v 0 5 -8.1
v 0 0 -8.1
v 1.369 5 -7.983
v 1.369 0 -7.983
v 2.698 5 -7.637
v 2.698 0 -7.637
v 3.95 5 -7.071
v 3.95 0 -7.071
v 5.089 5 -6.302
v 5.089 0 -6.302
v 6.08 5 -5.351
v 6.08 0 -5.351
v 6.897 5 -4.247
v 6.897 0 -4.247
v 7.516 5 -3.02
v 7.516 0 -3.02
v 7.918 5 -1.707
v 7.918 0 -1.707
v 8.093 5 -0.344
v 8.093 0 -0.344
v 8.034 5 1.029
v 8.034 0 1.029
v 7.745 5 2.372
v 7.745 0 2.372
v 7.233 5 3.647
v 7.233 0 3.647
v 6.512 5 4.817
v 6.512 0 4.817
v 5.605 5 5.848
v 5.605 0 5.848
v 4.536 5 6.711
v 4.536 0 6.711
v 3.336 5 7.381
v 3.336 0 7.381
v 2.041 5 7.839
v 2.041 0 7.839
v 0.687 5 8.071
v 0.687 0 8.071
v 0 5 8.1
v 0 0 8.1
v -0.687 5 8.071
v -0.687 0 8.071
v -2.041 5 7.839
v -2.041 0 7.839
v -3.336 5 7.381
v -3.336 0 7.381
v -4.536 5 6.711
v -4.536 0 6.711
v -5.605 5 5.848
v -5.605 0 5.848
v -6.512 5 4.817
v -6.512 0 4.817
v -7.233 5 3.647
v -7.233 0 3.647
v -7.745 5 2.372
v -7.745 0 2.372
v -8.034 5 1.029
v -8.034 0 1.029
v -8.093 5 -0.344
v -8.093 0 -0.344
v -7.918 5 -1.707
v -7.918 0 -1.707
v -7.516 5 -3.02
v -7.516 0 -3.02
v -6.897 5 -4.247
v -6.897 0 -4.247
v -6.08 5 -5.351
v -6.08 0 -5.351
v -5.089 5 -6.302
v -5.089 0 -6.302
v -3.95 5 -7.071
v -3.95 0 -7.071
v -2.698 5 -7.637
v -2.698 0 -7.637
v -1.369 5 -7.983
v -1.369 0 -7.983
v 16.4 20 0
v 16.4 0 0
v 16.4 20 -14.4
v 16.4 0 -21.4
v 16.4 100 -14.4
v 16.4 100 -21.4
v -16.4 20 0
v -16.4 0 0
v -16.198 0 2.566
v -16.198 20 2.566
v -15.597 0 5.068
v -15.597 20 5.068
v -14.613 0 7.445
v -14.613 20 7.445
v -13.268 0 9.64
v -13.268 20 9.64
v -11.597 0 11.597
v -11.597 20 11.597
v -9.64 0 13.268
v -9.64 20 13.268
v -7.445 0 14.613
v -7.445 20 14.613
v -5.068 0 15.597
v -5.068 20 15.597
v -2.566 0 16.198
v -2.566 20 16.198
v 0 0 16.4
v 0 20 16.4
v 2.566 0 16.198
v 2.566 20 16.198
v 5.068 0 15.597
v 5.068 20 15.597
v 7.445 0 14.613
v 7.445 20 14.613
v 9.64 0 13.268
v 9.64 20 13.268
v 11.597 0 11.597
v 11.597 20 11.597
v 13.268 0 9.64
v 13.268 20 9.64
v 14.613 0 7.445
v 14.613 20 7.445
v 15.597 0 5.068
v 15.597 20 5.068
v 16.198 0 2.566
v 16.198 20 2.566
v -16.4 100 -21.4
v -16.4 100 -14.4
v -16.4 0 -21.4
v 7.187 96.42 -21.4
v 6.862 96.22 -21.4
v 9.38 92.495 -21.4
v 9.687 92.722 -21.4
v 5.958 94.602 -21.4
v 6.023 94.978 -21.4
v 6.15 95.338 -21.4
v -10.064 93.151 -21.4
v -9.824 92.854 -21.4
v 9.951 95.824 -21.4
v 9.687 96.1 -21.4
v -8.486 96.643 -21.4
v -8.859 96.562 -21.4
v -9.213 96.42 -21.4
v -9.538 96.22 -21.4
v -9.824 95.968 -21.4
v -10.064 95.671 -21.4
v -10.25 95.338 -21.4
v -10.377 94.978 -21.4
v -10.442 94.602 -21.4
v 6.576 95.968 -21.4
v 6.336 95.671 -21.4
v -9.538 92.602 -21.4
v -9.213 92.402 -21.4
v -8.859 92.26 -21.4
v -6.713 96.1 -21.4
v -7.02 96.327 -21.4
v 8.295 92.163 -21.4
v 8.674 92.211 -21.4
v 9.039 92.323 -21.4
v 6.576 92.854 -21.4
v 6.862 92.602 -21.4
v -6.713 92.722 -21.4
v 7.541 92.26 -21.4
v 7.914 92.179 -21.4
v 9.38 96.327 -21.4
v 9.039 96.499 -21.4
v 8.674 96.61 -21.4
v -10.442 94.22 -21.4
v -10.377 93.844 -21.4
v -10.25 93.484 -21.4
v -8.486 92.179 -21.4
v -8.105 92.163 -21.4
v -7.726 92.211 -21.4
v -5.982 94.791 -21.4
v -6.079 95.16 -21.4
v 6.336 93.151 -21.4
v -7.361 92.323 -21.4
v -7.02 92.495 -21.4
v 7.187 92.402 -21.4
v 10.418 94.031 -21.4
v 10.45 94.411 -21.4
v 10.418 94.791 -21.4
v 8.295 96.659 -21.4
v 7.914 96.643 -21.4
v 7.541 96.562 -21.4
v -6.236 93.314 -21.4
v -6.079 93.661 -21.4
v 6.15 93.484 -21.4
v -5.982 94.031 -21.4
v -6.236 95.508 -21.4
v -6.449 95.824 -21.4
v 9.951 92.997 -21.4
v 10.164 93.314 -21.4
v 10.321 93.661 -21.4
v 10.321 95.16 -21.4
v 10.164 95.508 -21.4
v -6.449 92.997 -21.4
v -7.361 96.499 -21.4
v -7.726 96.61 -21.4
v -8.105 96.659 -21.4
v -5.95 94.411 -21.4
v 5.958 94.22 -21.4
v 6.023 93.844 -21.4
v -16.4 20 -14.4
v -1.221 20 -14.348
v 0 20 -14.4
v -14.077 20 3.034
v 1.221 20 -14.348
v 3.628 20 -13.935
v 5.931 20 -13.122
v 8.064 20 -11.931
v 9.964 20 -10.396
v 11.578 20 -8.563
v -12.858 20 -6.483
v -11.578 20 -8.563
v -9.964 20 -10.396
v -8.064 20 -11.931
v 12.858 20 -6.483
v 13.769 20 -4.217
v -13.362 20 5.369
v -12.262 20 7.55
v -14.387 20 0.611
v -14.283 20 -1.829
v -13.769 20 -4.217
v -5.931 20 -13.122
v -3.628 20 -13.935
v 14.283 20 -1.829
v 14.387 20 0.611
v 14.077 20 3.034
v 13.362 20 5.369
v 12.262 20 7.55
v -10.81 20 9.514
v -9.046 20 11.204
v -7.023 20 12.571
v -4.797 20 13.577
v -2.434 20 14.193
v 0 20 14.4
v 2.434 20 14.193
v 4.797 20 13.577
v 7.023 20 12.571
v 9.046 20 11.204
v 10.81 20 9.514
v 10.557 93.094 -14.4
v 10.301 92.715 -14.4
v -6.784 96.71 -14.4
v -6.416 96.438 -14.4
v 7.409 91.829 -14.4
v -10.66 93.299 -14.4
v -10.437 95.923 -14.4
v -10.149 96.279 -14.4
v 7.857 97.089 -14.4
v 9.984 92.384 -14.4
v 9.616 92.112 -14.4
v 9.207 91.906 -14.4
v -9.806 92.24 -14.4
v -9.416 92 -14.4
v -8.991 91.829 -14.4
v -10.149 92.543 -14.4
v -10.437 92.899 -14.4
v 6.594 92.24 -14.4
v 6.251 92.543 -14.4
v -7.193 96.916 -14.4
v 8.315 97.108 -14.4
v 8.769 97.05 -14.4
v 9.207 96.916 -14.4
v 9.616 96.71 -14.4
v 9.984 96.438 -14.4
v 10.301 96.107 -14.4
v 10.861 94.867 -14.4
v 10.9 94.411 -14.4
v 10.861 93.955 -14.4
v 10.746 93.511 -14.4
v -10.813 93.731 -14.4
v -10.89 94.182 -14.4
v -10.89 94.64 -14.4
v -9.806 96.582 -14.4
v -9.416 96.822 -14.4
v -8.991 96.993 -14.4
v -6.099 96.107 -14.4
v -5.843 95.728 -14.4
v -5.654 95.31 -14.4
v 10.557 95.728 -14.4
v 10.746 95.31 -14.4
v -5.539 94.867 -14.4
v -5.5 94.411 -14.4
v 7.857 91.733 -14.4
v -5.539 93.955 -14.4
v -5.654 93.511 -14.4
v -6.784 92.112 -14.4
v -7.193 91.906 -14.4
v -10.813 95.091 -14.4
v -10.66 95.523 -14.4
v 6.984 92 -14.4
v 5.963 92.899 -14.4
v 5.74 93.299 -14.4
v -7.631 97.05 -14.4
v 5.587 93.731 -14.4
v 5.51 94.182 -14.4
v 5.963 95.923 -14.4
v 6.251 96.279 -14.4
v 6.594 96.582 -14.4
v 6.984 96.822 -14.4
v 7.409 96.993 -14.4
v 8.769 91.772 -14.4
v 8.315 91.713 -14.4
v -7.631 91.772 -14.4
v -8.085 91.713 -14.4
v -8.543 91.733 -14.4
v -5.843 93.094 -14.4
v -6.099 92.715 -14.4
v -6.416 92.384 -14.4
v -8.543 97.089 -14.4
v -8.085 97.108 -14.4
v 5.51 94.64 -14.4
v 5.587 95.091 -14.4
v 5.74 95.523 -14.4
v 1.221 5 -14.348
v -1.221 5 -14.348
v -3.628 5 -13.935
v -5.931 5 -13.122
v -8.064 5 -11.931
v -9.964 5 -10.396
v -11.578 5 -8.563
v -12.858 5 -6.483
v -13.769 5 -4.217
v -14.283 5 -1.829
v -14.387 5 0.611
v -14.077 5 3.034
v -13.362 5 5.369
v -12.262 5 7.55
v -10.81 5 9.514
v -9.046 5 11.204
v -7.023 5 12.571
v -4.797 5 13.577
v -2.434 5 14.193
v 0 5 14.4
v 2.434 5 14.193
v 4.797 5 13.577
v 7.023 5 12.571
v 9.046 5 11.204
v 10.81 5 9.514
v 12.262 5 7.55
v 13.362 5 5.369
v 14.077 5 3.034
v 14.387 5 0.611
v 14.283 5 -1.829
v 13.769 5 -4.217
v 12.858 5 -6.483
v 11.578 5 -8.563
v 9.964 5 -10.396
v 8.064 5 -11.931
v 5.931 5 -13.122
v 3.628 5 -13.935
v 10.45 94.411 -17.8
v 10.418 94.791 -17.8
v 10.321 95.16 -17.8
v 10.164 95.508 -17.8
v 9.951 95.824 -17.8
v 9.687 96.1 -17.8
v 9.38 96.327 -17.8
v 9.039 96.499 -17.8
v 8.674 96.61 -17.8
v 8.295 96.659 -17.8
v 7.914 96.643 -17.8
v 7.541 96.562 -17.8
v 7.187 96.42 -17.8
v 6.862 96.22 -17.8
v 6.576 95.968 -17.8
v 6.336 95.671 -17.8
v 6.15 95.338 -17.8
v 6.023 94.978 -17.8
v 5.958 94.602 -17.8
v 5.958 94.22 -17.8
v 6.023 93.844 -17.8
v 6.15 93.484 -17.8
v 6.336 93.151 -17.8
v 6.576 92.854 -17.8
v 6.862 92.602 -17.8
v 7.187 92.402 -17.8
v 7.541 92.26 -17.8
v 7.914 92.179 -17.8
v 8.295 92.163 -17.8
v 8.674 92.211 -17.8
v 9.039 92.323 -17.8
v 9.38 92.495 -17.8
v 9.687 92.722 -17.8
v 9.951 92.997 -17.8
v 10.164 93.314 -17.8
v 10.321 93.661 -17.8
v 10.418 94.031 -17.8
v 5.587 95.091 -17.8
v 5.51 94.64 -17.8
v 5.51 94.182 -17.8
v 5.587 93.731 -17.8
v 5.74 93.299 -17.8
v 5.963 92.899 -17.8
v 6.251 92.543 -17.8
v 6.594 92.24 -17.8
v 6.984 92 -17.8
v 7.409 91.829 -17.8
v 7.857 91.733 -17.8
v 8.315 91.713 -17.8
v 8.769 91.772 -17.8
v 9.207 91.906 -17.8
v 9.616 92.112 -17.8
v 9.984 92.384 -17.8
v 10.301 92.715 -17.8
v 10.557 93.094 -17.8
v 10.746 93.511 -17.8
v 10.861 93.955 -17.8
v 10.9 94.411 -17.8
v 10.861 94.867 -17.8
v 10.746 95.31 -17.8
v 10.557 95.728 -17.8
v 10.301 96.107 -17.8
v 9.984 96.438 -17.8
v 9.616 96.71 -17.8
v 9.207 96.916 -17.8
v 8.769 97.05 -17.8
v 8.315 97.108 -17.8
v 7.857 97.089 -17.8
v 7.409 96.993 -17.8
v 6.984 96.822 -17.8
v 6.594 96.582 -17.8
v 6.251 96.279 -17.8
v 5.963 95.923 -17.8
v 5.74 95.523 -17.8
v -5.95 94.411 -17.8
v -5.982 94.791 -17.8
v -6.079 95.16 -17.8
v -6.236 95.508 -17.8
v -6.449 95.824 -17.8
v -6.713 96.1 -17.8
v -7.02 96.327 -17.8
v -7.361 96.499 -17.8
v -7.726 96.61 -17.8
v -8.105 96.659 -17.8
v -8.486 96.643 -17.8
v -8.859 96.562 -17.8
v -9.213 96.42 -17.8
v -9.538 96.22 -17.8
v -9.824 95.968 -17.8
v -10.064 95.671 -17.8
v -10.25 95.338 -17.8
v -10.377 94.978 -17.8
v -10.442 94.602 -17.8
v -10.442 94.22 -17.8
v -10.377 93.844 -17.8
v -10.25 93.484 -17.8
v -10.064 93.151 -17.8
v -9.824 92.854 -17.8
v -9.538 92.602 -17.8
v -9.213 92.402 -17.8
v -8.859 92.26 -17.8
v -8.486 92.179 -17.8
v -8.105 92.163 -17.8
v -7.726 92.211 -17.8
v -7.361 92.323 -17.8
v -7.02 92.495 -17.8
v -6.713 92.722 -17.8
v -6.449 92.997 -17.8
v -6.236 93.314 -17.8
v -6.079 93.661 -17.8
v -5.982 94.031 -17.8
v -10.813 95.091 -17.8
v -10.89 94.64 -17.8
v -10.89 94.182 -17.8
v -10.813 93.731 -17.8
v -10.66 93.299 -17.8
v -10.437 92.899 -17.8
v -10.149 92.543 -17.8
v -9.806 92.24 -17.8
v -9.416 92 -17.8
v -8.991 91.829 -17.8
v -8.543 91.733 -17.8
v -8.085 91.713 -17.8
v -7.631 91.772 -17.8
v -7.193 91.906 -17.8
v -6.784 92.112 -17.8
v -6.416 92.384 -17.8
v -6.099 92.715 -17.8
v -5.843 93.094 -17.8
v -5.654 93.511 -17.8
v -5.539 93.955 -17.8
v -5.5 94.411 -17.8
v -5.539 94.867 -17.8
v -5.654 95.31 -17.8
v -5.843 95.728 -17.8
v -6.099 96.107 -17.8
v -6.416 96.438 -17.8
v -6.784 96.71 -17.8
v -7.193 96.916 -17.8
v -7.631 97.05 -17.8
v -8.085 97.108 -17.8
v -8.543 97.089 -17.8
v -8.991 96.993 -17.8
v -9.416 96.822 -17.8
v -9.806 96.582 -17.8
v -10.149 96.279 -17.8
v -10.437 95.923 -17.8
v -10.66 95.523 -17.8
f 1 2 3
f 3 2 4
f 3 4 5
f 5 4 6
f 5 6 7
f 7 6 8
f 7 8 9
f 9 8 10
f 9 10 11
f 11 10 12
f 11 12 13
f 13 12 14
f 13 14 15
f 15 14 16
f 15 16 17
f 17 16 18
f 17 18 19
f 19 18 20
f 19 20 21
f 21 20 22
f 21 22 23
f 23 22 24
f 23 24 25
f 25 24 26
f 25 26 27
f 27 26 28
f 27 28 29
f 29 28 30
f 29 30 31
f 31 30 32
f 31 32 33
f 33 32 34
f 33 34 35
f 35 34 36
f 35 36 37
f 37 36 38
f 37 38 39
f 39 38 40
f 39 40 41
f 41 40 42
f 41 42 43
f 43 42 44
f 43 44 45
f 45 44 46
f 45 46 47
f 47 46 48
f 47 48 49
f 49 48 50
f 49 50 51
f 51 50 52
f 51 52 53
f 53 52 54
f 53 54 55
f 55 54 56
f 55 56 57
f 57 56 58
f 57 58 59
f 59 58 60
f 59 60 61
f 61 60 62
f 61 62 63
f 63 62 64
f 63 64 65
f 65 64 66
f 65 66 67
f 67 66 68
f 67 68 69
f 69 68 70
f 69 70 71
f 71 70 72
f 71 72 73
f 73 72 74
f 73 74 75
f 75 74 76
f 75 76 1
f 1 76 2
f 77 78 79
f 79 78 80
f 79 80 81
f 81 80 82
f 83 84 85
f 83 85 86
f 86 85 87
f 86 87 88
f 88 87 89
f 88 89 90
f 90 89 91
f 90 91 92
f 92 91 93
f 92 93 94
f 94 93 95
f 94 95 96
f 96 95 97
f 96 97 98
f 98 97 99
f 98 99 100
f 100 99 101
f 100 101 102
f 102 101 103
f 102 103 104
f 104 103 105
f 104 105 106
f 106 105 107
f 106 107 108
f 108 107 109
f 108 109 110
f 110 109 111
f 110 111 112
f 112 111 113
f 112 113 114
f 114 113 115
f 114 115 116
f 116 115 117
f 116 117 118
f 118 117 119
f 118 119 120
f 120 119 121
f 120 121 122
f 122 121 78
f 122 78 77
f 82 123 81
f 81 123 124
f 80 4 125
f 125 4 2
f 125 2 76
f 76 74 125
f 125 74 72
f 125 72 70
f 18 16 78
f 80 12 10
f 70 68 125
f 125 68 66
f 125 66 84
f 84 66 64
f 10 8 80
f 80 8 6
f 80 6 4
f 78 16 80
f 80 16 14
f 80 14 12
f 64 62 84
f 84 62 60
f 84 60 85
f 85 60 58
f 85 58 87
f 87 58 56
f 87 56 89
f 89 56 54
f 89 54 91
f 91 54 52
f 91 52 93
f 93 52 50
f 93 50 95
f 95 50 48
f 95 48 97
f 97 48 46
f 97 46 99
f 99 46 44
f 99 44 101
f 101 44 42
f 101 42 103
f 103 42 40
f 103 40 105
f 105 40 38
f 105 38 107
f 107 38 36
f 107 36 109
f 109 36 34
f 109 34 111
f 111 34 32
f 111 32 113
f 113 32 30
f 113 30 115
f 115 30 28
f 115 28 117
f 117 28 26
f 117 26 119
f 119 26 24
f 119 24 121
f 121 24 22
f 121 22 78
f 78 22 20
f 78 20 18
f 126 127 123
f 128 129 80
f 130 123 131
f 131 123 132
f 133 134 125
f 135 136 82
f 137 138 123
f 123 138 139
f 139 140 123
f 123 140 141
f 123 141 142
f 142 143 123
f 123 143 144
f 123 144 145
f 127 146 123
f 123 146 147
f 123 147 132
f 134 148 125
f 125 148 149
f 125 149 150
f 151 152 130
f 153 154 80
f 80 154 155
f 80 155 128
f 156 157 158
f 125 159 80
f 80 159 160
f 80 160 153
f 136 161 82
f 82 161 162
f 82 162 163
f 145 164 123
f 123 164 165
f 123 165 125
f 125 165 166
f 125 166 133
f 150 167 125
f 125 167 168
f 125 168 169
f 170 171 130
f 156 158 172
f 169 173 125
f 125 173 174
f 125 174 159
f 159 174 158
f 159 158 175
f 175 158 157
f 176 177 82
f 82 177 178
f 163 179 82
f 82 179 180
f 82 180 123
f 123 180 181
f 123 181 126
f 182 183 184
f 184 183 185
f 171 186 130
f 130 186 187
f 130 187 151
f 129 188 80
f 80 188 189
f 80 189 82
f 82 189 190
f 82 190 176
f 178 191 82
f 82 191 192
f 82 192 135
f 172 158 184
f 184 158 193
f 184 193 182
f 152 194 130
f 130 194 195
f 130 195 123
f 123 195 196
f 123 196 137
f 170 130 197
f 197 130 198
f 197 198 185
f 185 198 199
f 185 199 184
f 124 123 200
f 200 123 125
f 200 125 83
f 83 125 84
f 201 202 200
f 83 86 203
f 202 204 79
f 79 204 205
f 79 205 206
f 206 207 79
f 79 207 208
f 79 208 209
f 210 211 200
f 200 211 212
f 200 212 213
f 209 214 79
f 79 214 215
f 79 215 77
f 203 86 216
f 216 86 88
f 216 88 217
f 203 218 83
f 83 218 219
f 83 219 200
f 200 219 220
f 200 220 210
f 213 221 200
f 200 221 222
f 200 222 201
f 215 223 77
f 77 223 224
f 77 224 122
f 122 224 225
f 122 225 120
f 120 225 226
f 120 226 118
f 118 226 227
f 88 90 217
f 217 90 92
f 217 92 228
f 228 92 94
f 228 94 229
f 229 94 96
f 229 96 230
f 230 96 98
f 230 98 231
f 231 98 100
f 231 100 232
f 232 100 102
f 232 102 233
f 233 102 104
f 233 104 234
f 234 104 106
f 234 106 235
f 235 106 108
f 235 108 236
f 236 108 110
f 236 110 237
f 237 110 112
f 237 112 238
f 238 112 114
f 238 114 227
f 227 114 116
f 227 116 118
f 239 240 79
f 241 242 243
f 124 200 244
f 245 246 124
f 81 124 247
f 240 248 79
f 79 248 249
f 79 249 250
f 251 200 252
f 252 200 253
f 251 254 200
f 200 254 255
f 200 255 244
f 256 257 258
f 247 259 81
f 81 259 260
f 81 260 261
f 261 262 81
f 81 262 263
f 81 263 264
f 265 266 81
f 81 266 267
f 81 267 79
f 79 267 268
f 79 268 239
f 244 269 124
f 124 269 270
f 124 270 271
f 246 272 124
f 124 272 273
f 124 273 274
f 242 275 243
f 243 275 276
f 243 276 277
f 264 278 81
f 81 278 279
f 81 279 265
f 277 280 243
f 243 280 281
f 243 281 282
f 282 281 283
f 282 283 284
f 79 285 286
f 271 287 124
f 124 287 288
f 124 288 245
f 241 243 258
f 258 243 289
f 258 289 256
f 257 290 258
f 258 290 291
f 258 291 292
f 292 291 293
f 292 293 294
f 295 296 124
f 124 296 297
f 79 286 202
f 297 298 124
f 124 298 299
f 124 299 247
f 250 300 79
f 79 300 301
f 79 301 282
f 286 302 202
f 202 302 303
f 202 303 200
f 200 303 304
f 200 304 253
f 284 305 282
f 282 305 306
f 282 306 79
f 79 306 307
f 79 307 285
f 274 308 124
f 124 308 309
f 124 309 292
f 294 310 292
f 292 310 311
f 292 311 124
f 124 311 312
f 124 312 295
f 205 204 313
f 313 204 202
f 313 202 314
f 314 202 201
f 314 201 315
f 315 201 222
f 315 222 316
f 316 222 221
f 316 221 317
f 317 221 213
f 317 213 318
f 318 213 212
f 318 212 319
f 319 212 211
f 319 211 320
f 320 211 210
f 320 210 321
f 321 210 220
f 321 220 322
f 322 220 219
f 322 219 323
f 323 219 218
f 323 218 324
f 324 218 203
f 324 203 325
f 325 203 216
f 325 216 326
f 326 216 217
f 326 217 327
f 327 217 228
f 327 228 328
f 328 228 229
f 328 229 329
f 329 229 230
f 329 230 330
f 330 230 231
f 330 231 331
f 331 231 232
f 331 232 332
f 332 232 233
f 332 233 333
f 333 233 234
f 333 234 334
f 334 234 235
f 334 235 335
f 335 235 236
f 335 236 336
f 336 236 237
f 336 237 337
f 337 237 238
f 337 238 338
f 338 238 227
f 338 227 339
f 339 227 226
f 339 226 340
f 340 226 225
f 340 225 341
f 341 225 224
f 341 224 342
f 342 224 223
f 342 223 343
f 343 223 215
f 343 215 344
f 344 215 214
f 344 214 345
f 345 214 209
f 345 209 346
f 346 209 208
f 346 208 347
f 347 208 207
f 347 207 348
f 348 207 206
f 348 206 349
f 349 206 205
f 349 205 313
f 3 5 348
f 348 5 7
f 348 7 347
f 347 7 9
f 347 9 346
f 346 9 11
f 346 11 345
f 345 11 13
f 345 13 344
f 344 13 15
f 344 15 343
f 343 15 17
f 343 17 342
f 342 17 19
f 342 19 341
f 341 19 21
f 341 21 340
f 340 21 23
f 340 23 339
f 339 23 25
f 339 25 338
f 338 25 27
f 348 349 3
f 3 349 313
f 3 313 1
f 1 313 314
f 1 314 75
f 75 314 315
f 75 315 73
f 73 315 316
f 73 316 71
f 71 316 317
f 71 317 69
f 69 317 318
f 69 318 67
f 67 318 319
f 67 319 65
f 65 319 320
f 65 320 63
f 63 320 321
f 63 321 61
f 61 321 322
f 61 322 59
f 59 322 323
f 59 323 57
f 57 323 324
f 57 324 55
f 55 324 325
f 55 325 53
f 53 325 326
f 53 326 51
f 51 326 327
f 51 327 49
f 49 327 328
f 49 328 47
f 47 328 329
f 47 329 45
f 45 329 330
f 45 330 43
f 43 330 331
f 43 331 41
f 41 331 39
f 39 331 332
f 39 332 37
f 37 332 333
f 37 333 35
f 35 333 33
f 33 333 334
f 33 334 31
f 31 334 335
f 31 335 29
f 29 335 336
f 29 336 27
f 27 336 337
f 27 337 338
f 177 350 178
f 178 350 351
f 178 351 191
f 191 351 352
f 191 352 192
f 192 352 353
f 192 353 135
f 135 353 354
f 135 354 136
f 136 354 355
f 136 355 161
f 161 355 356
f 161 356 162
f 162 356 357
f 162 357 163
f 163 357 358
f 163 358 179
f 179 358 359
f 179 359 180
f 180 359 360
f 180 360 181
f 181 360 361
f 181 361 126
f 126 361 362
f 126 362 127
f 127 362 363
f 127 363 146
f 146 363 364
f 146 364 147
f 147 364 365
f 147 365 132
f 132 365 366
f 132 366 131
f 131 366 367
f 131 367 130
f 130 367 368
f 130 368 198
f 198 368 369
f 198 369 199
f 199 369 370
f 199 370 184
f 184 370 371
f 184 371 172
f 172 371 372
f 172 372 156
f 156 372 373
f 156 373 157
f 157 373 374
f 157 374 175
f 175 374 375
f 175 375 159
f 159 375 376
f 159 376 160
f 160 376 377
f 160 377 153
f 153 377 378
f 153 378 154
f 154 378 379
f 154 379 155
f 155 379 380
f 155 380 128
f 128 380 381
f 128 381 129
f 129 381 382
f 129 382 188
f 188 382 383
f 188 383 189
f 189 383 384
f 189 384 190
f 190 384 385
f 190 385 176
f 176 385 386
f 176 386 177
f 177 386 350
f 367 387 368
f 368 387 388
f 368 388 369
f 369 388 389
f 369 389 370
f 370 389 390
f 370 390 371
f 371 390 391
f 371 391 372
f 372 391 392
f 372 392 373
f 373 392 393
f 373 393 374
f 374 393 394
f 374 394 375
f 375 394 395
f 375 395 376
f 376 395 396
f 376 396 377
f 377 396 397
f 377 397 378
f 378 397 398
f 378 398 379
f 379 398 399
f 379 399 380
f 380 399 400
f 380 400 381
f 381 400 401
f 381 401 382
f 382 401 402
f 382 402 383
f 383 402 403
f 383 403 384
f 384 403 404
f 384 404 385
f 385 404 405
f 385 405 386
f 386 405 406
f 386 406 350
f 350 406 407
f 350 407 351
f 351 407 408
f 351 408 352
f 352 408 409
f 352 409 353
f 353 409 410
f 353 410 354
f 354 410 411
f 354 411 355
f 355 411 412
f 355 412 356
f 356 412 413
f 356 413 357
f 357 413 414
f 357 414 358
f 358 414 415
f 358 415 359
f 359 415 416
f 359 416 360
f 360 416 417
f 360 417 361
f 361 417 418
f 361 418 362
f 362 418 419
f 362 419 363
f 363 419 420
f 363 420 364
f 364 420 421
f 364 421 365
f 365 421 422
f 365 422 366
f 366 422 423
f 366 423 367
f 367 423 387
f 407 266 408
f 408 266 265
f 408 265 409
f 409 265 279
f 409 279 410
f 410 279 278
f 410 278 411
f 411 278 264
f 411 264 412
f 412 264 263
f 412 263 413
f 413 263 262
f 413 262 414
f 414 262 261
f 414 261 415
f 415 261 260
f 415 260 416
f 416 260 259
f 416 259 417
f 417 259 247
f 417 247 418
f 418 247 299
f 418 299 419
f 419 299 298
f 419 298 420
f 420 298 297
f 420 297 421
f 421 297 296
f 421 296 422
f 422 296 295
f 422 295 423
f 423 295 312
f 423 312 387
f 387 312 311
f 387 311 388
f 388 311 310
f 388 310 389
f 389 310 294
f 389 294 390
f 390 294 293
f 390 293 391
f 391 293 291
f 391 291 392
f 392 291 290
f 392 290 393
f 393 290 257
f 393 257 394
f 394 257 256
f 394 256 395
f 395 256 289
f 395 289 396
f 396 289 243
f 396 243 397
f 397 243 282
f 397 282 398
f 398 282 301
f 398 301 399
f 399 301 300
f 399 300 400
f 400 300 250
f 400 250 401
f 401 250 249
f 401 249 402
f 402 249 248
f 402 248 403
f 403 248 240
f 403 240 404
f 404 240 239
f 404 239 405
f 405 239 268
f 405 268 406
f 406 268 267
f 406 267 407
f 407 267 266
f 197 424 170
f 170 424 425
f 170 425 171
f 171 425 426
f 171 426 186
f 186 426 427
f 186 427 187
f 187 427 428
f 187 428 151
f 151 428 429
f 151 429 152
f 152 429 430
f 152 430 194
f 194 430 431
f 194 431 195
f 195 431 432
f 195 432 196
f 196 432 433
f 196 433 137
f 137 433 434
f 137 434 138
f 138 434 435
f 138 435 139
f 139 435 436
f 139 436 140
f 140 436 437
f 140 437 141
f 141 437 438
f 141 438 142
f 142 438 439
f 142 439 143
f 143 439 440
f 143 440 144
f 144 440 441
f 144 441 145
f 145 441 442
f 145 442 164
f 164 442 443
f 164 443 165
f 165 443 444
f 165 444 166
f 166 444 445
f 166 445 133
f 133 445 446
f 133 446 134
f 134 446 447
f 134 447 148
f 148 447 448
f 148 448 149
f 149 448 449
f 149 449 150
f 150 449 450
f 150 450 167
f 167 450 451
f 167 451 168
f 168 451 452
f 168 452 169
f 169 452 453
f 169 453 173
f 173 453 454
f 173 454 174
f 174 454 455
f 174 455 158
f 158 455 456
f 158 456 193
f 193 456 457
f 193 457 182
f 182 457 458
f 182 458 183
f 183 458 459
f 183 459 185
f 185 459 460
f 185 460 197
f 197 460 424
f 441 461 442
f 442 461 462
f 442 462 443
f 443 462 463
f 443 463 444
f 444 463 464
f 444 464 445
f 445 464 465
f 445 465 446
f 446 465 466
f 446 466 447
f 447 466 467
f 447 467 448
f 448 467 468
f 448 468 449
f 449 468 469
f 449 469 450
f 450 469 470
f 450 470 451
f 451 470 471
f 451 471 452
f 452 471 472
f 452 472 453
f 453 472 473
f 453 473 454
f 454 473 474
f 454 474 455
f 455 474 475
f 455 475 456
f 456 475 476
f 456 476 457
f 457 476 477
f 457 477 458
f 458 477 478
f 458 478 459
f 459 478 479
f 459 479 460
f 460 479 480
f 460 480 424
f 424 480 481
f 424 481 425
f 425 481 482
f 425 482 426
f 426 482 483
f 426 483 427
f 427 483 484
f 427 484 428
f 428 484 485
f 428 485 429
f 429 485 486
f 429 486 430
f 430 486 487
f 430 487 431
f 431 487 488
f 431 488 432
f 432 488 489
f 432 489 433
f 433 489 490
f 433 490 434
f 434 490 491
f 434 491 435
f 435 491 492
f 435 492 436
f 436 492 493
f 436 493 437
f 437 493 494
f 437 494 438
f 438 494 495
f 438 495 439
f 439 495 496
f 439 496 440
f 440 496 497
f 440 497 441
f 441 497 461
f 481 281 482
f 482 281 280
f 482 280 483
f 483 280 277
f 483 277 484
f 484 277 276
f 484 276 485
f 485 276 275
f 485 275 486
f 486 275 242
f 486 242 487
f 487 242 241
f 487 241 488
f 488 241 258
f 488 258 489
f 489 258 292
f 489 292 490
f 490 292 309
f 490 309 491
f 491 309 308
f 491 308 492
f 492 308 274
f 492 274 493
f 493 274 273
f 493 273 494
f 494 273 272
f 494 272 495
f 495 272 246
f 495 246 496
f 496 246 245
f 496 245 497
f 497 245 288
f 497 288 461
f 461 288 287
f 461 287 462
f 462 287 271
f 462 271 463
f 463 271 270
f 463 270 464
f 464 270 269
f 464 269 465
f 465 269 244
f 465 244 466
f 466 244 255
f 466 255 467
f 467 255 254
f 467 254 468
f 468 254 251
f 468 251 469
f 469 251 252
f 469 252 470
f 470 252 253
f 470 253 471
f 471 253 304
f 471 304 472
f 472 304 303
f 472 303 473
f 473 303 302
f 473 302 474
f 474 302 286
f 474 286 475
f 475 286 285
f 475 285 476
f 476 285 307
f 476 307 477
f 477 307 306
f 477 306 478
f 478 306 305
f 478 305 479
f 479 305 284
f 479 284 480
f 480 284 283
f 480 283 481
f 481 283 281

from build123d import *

# Parameters (mm, degrees)
SKETCH1_R                      = 8.1
BOSS_EXTRUDE1_DEPTH            = 100
SKETCH2_R                      = 14.4
CUT_EXTRUDE1_DEPTH             = 80
CUT_EXTRUDE2_START             = -80
CUT_EXTRUDE2_DEPTH             = 80
SKETCH4_R                      = 14.4
CUT_EXTRUDE3_DEPTH             = 15
CBORE_FOR_M4_SHCS1_D           = 4.5
CBORE_FOR_M4_SHCS1_CBORE_D     = 5.4
CBORE_FOR_M4_SHCS1_CBORE_DEPTH = 3.4


with BuildPart() as part:
    # Sketch1 → Boss-Extrude1 (new body)
    with BuildSketch(Plane(origin=(0, 0, 0), x_dir=(1, 0, 0), z_dir=(0, 1, 0))):
        with BuildLine():
            Line((-16.4, 0), (-16.4, 21.4))
            Line((-16.4, 21.4), (16.4, 21.4))
            Line((16.4, 21.4), (16.4, 0))
            ThreePointArc((16.4, 0), (0, -16.4), (-16.4, 0))
        make_face()
        with Locations(Location((0, 0, 0), (0, 0, 270))):
            Circle(SKETCH1_R, mode=Mode.SUBTRACT)
    extrude(amount=BOSS_EXTRUDE1_DEPTH)

    # Sketch2 → Cut-Extrude1 (cut)
    with BuildSketch(Plane(origin=(0, 100, 0), x_dir=(1, 0, 0), z_dir=(0, 1, 0))):
        with Locations(Location((0, 0, 0), (0, 0, 270))):
            Circle(SKETCH2_R)
    extrude(amount=-CUT_EXTRUDE1_DEPTH, mode=Mode.SUBTRACT)

    # Sketch3 → Cut-Extrude2 (cut)
    with BuildSketch(Plane(origin=(0, 100, 0), x_dir=(1, 0, 0), z_dir=(0, 1, 0)).offset(CUT_EXTRUDE2_START)):
        with BuildLine():
            Line((-16.4, 0), (-16.4, 14.4))
            Line((-16.4, 14.4), (16.4, 14.4))
            Line((16.4, 14.4), (16.4, 0))
            ThreePointArc((16.4, 0), (0, -16.4), (-16.4, 0))
        make_face()
    extrude(amount=CUT_EXTRUDE2_DEPTH, mode=Mode.SUBTRACT)

    # Sketch4 → Cut-Extrude3 (cut)
    with BuildSketch(Plane(origin=(0, 20, 0), x_dir=(1, 0, 0), z_dir=(0, 1, 0))):
        with Locations(Location((0, 0, 0), (0, 0, 270))):
            Circle(SKETCH4_R)
    extrude(amount=-CUT_EXTRUDE3_DEPTH, mode=Mode.SUBTRACT)

    # CBORE for M4 SHCS1 (through all)
    with Locations(Plane.XY.offset(-14.4)):
        with Locations((8.2, 94.410911653), (-8.2, 94.410911653)):
            CounterBoreHole(CBORE_FOR_M4_SHCS1_D / 2, CBORE_FOR_M4_SHCS1_CBORE_D / 2, CBORE_FOR_M4_SHCS1_CBORE_DEPTH)


solid = part.part
